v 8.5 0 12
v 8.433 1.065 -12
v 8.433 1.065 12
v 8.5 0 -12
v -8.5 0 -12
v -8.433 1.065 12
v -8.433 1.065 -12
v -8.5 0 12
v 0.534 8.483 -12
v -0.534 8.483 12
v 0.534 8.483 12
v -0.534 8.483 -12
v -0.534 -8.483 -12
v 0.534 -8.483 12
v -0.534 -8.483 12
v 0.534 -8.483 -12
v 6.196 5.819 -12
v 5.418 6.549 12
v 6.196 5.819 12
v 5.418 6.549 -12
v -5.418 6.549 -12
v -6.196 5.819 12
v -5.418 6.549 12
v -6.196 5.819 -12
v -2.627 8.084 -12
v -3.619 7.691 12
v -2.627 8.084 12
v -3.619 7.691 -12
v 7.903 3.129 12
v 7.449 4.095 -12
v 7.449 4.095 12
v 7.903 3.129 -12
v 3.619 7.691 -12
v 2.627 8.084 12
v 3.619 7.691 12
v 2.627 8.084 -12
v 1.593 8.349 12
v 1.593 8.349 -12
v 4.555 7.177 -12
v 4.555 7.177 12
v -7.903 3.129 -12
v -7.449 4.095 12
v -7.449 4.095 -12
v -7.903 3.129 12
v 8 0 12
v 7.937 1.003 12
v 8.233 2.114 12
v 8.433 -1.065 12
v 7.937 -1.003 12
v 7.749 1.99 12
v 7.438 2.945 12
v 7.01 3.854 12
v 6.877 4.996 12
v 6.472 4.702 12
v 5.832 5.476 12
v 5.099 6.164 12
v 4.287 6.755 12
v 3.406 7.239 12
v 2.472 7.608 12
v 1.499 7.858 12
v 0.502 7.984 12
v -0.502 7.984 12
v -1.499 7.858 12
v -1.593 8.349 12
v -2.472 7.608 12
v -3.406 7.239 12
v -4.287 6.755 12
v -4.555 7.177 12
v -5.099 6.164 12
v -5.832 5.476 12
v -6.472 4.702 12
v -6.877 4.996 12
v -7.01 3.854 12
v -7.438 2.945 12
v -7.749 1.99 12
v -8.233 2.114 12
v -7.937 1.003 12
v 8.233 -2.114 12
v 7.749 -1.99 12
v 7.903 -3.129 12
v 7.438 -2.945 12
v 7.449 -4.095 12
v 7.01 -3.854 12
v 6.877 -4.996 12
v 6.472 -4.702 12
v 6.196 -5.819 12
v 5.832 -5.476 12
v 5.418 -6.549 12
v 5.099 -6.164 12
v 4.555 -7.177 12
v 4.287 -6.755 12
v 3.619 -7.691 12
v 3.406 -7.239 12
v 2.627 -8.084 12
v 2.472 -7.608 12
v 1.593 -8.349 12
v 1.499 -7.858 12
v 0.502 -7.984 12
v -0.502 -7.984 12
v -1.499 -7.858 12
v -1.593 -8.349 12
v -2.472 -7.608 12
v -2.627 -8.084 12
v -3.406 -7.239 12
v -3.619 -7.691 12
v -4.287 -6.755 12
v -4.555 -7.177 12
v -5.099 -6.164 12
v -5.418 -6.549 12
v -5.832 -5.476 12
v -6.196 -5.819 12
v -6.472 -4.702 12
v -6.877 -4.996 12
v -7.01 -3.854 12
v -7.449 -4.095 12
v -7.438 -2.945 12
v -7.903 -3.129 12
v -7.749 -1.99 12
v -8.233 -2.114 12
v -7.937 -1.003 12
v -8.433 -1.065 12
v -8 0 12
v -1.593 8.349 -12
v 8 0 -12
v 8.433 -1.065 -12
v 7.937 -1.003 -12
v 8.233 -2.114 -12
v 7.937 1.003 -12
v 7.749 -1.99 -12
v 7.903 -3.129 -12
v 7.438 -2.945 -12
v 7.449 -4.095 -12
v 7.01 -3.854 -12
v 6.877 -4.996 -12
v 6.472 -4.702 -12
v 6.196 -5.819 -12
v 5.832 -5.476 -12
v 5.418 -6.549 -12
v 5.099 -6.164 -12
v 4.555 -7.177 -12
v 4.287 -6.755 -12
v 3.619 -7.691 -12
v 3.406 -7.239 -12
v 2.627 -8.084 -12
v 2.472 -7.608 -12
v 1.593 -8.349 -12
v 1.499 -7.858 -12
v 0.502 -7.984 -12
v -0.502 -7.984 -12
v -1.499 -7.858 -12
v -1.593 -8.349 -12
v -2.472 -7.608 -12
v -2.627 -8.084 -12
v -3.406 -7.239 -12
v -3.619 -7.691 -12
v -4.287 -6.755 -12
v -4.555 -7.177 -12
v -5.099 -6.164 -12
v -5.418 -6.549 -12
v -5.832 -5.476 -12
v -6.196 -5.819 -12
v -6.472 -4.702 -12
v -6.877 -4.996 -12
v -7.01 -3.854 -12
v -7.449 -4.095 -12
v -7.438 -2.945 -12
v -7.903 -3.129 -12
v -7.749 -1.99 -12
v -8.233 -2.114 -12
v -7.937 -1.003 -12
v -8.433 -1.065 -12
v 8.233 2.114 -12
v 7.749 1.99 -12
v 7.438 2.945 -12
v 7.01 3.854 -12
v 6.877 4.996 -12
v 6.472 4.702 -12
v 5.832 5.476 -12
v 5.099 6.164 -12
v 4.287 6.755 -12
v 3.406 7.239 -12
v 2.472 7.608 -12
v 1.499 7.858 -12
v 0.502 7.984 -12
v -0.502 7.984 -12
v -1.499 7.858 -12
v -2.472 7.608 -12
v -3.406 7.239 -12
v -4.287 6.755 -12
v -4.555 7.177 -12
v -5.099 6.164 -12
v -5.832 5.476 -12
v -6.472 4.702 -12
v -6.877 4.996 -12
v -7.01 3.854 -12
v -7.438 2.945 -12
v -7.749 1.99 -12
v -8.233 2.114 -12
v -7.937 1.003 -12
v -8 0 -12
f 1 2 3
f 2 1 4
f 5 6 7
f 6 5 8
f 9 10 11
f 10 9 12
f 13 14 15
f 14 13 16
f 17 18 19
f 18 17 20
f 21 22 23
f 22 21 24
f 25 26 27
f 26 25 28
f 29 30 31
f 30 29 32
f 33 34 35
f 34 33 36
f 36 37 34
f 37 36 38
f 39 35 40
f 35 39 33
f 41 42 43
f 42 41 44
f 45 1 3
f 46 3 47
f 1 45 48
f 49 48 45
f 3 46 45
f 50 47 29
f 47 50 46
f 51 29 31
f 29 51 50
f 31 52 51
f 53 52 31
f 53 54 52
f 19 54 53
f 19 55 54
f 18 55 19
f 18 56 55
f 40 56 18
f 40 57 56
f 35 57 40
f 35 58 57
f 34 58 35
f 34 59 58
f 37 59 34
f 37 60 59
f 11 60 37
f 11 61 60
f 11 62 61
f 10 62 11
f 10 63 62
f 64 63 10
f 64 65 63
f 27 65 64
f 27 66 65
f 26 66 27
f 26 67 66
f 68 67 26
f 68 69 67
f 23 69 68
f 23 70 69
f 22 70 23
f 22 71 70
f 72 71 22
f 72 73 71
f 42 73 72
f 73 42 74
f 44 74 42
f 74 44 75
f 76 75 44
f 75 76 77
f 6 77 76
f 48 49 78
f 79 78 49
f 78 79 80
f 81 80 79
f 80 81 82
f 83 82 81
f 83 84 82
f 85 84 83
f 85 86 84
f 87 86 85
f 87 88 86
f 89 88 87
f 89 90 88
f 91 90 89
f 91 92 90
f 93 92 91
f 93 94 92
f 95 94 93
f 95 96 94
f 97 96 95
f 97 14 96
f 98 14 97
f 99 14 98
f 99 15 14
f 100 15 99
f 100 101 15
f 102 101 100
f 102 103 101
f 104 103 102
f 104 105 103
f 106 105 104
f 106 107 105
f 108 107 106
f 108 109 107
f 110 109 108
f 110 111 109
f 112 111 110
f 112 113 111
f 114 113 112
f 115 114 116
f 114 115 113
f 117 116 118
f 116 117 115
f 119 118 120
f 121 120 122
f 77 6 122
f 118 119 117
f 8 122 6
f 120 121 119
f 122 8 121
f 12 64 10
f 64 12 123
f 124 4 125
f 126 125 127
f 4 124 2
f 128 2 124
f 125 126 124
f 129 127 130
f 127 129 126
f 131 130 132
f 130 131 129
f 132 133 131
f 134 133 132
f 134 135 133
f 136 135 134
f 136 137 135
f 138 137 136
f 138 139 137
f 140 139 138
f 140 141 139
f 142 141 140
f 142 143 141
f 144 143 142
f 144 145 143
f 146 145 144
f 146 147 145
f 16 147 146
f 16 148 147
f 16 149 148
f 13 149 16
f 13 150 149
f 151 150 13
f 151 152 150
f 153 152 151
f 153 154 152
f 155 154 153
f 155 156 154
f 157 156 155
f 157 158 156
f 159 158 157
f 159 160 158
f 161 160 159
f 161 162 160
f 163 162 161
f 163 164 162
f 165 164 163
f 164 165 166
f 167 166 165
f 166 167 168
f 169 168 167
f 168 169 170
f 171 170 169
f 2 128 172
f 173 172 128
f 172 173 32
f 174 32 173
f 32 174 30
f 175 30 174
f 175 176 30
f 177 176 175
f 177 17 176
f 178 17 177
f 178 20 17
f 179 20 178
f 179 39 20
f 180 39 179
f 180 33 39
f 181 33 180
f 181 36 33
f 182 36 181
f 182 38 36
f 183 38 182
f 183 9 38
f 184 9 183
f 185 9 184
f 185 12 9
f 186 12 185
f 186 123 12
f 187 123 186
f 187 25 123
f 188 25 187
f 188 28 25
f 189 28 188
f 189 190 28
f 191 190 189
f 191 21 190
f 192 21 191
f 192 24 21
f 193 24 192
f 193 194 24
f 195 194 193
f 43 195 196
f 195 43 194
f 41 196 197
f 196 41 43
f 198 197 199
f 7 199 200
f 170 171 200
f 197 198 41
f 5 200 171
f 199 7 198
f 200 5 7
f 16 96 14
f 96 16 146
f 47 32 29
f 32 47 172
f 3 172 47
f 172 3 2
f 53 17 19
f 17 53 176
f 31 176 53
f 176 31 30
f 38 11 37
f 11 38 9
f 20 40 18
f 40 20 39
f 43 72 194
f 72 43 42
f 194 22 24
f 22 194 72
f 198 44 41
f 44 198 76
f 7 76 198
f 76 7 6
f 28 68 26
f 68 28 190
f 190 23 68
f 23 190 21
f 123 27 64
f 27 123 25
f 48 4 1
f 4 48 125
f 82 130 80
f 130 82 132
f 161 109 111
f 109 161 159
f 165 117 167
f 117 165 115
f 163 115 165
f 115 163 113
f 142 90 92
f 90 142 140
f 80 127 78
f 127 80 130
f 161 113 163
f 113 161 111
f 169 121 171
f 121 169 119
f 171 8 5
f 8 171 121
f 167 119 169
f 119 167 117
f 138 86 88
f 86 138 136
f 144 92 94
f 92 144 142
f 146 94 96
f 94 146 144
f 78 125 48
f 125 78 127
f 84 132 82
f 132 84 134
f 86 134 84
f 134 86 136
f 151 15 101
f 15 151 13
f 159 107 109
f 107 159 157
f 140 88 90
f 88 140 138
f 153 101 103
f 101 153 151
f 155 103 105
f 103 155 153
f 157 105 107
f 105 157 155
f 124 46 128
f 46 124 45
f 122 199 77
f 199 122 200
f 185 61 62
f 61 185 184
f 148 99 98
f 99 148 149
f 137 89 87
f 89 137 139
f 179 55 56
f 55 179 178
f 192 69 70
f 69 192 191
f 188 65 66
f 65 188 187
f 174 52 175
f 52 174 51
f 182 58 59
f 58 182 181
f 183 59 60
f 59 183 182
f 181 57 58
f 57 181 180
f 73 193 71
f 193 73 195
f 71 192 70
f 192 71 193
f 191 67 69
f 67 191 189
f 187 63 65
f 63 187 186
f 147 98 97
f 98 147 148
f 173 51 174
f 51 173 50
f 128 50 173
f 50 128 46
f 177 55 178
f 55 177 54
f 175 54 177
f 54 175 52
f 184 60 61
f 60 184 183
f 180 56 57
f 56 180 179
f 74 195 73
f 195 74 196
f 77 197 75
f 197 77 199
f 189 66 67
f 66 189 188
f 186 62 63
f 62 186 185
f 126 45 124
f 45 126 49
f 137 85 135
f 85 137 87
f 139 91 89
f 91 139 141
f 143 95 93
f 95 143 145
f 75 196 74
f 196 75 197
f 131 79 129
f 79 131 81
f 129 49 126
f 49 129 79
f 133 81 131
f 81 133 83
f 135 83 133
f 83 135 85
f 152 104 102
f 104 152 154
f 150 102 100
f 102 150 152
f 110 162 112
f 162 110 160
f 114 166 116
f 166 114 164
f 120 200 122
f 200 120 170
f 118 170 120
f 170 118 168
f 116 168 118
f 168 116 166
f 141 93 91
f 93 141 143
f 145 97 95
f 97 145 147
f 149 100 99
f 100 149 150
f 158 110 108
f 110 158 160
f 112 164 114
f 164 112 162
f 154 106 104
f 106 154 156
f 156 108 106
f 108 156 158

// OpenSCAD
$fn = 50;


difference() {
	union() {
		translate(v = [0, 0, -12.0000000000]) {
			cylinder(h = 24, r = 8.5000000000);
		}
	}
	union() {
		translate(v = [0, 0, -100.0000000000]) {
			cylinder(h = 200, r = 8);
		}
	}
}
